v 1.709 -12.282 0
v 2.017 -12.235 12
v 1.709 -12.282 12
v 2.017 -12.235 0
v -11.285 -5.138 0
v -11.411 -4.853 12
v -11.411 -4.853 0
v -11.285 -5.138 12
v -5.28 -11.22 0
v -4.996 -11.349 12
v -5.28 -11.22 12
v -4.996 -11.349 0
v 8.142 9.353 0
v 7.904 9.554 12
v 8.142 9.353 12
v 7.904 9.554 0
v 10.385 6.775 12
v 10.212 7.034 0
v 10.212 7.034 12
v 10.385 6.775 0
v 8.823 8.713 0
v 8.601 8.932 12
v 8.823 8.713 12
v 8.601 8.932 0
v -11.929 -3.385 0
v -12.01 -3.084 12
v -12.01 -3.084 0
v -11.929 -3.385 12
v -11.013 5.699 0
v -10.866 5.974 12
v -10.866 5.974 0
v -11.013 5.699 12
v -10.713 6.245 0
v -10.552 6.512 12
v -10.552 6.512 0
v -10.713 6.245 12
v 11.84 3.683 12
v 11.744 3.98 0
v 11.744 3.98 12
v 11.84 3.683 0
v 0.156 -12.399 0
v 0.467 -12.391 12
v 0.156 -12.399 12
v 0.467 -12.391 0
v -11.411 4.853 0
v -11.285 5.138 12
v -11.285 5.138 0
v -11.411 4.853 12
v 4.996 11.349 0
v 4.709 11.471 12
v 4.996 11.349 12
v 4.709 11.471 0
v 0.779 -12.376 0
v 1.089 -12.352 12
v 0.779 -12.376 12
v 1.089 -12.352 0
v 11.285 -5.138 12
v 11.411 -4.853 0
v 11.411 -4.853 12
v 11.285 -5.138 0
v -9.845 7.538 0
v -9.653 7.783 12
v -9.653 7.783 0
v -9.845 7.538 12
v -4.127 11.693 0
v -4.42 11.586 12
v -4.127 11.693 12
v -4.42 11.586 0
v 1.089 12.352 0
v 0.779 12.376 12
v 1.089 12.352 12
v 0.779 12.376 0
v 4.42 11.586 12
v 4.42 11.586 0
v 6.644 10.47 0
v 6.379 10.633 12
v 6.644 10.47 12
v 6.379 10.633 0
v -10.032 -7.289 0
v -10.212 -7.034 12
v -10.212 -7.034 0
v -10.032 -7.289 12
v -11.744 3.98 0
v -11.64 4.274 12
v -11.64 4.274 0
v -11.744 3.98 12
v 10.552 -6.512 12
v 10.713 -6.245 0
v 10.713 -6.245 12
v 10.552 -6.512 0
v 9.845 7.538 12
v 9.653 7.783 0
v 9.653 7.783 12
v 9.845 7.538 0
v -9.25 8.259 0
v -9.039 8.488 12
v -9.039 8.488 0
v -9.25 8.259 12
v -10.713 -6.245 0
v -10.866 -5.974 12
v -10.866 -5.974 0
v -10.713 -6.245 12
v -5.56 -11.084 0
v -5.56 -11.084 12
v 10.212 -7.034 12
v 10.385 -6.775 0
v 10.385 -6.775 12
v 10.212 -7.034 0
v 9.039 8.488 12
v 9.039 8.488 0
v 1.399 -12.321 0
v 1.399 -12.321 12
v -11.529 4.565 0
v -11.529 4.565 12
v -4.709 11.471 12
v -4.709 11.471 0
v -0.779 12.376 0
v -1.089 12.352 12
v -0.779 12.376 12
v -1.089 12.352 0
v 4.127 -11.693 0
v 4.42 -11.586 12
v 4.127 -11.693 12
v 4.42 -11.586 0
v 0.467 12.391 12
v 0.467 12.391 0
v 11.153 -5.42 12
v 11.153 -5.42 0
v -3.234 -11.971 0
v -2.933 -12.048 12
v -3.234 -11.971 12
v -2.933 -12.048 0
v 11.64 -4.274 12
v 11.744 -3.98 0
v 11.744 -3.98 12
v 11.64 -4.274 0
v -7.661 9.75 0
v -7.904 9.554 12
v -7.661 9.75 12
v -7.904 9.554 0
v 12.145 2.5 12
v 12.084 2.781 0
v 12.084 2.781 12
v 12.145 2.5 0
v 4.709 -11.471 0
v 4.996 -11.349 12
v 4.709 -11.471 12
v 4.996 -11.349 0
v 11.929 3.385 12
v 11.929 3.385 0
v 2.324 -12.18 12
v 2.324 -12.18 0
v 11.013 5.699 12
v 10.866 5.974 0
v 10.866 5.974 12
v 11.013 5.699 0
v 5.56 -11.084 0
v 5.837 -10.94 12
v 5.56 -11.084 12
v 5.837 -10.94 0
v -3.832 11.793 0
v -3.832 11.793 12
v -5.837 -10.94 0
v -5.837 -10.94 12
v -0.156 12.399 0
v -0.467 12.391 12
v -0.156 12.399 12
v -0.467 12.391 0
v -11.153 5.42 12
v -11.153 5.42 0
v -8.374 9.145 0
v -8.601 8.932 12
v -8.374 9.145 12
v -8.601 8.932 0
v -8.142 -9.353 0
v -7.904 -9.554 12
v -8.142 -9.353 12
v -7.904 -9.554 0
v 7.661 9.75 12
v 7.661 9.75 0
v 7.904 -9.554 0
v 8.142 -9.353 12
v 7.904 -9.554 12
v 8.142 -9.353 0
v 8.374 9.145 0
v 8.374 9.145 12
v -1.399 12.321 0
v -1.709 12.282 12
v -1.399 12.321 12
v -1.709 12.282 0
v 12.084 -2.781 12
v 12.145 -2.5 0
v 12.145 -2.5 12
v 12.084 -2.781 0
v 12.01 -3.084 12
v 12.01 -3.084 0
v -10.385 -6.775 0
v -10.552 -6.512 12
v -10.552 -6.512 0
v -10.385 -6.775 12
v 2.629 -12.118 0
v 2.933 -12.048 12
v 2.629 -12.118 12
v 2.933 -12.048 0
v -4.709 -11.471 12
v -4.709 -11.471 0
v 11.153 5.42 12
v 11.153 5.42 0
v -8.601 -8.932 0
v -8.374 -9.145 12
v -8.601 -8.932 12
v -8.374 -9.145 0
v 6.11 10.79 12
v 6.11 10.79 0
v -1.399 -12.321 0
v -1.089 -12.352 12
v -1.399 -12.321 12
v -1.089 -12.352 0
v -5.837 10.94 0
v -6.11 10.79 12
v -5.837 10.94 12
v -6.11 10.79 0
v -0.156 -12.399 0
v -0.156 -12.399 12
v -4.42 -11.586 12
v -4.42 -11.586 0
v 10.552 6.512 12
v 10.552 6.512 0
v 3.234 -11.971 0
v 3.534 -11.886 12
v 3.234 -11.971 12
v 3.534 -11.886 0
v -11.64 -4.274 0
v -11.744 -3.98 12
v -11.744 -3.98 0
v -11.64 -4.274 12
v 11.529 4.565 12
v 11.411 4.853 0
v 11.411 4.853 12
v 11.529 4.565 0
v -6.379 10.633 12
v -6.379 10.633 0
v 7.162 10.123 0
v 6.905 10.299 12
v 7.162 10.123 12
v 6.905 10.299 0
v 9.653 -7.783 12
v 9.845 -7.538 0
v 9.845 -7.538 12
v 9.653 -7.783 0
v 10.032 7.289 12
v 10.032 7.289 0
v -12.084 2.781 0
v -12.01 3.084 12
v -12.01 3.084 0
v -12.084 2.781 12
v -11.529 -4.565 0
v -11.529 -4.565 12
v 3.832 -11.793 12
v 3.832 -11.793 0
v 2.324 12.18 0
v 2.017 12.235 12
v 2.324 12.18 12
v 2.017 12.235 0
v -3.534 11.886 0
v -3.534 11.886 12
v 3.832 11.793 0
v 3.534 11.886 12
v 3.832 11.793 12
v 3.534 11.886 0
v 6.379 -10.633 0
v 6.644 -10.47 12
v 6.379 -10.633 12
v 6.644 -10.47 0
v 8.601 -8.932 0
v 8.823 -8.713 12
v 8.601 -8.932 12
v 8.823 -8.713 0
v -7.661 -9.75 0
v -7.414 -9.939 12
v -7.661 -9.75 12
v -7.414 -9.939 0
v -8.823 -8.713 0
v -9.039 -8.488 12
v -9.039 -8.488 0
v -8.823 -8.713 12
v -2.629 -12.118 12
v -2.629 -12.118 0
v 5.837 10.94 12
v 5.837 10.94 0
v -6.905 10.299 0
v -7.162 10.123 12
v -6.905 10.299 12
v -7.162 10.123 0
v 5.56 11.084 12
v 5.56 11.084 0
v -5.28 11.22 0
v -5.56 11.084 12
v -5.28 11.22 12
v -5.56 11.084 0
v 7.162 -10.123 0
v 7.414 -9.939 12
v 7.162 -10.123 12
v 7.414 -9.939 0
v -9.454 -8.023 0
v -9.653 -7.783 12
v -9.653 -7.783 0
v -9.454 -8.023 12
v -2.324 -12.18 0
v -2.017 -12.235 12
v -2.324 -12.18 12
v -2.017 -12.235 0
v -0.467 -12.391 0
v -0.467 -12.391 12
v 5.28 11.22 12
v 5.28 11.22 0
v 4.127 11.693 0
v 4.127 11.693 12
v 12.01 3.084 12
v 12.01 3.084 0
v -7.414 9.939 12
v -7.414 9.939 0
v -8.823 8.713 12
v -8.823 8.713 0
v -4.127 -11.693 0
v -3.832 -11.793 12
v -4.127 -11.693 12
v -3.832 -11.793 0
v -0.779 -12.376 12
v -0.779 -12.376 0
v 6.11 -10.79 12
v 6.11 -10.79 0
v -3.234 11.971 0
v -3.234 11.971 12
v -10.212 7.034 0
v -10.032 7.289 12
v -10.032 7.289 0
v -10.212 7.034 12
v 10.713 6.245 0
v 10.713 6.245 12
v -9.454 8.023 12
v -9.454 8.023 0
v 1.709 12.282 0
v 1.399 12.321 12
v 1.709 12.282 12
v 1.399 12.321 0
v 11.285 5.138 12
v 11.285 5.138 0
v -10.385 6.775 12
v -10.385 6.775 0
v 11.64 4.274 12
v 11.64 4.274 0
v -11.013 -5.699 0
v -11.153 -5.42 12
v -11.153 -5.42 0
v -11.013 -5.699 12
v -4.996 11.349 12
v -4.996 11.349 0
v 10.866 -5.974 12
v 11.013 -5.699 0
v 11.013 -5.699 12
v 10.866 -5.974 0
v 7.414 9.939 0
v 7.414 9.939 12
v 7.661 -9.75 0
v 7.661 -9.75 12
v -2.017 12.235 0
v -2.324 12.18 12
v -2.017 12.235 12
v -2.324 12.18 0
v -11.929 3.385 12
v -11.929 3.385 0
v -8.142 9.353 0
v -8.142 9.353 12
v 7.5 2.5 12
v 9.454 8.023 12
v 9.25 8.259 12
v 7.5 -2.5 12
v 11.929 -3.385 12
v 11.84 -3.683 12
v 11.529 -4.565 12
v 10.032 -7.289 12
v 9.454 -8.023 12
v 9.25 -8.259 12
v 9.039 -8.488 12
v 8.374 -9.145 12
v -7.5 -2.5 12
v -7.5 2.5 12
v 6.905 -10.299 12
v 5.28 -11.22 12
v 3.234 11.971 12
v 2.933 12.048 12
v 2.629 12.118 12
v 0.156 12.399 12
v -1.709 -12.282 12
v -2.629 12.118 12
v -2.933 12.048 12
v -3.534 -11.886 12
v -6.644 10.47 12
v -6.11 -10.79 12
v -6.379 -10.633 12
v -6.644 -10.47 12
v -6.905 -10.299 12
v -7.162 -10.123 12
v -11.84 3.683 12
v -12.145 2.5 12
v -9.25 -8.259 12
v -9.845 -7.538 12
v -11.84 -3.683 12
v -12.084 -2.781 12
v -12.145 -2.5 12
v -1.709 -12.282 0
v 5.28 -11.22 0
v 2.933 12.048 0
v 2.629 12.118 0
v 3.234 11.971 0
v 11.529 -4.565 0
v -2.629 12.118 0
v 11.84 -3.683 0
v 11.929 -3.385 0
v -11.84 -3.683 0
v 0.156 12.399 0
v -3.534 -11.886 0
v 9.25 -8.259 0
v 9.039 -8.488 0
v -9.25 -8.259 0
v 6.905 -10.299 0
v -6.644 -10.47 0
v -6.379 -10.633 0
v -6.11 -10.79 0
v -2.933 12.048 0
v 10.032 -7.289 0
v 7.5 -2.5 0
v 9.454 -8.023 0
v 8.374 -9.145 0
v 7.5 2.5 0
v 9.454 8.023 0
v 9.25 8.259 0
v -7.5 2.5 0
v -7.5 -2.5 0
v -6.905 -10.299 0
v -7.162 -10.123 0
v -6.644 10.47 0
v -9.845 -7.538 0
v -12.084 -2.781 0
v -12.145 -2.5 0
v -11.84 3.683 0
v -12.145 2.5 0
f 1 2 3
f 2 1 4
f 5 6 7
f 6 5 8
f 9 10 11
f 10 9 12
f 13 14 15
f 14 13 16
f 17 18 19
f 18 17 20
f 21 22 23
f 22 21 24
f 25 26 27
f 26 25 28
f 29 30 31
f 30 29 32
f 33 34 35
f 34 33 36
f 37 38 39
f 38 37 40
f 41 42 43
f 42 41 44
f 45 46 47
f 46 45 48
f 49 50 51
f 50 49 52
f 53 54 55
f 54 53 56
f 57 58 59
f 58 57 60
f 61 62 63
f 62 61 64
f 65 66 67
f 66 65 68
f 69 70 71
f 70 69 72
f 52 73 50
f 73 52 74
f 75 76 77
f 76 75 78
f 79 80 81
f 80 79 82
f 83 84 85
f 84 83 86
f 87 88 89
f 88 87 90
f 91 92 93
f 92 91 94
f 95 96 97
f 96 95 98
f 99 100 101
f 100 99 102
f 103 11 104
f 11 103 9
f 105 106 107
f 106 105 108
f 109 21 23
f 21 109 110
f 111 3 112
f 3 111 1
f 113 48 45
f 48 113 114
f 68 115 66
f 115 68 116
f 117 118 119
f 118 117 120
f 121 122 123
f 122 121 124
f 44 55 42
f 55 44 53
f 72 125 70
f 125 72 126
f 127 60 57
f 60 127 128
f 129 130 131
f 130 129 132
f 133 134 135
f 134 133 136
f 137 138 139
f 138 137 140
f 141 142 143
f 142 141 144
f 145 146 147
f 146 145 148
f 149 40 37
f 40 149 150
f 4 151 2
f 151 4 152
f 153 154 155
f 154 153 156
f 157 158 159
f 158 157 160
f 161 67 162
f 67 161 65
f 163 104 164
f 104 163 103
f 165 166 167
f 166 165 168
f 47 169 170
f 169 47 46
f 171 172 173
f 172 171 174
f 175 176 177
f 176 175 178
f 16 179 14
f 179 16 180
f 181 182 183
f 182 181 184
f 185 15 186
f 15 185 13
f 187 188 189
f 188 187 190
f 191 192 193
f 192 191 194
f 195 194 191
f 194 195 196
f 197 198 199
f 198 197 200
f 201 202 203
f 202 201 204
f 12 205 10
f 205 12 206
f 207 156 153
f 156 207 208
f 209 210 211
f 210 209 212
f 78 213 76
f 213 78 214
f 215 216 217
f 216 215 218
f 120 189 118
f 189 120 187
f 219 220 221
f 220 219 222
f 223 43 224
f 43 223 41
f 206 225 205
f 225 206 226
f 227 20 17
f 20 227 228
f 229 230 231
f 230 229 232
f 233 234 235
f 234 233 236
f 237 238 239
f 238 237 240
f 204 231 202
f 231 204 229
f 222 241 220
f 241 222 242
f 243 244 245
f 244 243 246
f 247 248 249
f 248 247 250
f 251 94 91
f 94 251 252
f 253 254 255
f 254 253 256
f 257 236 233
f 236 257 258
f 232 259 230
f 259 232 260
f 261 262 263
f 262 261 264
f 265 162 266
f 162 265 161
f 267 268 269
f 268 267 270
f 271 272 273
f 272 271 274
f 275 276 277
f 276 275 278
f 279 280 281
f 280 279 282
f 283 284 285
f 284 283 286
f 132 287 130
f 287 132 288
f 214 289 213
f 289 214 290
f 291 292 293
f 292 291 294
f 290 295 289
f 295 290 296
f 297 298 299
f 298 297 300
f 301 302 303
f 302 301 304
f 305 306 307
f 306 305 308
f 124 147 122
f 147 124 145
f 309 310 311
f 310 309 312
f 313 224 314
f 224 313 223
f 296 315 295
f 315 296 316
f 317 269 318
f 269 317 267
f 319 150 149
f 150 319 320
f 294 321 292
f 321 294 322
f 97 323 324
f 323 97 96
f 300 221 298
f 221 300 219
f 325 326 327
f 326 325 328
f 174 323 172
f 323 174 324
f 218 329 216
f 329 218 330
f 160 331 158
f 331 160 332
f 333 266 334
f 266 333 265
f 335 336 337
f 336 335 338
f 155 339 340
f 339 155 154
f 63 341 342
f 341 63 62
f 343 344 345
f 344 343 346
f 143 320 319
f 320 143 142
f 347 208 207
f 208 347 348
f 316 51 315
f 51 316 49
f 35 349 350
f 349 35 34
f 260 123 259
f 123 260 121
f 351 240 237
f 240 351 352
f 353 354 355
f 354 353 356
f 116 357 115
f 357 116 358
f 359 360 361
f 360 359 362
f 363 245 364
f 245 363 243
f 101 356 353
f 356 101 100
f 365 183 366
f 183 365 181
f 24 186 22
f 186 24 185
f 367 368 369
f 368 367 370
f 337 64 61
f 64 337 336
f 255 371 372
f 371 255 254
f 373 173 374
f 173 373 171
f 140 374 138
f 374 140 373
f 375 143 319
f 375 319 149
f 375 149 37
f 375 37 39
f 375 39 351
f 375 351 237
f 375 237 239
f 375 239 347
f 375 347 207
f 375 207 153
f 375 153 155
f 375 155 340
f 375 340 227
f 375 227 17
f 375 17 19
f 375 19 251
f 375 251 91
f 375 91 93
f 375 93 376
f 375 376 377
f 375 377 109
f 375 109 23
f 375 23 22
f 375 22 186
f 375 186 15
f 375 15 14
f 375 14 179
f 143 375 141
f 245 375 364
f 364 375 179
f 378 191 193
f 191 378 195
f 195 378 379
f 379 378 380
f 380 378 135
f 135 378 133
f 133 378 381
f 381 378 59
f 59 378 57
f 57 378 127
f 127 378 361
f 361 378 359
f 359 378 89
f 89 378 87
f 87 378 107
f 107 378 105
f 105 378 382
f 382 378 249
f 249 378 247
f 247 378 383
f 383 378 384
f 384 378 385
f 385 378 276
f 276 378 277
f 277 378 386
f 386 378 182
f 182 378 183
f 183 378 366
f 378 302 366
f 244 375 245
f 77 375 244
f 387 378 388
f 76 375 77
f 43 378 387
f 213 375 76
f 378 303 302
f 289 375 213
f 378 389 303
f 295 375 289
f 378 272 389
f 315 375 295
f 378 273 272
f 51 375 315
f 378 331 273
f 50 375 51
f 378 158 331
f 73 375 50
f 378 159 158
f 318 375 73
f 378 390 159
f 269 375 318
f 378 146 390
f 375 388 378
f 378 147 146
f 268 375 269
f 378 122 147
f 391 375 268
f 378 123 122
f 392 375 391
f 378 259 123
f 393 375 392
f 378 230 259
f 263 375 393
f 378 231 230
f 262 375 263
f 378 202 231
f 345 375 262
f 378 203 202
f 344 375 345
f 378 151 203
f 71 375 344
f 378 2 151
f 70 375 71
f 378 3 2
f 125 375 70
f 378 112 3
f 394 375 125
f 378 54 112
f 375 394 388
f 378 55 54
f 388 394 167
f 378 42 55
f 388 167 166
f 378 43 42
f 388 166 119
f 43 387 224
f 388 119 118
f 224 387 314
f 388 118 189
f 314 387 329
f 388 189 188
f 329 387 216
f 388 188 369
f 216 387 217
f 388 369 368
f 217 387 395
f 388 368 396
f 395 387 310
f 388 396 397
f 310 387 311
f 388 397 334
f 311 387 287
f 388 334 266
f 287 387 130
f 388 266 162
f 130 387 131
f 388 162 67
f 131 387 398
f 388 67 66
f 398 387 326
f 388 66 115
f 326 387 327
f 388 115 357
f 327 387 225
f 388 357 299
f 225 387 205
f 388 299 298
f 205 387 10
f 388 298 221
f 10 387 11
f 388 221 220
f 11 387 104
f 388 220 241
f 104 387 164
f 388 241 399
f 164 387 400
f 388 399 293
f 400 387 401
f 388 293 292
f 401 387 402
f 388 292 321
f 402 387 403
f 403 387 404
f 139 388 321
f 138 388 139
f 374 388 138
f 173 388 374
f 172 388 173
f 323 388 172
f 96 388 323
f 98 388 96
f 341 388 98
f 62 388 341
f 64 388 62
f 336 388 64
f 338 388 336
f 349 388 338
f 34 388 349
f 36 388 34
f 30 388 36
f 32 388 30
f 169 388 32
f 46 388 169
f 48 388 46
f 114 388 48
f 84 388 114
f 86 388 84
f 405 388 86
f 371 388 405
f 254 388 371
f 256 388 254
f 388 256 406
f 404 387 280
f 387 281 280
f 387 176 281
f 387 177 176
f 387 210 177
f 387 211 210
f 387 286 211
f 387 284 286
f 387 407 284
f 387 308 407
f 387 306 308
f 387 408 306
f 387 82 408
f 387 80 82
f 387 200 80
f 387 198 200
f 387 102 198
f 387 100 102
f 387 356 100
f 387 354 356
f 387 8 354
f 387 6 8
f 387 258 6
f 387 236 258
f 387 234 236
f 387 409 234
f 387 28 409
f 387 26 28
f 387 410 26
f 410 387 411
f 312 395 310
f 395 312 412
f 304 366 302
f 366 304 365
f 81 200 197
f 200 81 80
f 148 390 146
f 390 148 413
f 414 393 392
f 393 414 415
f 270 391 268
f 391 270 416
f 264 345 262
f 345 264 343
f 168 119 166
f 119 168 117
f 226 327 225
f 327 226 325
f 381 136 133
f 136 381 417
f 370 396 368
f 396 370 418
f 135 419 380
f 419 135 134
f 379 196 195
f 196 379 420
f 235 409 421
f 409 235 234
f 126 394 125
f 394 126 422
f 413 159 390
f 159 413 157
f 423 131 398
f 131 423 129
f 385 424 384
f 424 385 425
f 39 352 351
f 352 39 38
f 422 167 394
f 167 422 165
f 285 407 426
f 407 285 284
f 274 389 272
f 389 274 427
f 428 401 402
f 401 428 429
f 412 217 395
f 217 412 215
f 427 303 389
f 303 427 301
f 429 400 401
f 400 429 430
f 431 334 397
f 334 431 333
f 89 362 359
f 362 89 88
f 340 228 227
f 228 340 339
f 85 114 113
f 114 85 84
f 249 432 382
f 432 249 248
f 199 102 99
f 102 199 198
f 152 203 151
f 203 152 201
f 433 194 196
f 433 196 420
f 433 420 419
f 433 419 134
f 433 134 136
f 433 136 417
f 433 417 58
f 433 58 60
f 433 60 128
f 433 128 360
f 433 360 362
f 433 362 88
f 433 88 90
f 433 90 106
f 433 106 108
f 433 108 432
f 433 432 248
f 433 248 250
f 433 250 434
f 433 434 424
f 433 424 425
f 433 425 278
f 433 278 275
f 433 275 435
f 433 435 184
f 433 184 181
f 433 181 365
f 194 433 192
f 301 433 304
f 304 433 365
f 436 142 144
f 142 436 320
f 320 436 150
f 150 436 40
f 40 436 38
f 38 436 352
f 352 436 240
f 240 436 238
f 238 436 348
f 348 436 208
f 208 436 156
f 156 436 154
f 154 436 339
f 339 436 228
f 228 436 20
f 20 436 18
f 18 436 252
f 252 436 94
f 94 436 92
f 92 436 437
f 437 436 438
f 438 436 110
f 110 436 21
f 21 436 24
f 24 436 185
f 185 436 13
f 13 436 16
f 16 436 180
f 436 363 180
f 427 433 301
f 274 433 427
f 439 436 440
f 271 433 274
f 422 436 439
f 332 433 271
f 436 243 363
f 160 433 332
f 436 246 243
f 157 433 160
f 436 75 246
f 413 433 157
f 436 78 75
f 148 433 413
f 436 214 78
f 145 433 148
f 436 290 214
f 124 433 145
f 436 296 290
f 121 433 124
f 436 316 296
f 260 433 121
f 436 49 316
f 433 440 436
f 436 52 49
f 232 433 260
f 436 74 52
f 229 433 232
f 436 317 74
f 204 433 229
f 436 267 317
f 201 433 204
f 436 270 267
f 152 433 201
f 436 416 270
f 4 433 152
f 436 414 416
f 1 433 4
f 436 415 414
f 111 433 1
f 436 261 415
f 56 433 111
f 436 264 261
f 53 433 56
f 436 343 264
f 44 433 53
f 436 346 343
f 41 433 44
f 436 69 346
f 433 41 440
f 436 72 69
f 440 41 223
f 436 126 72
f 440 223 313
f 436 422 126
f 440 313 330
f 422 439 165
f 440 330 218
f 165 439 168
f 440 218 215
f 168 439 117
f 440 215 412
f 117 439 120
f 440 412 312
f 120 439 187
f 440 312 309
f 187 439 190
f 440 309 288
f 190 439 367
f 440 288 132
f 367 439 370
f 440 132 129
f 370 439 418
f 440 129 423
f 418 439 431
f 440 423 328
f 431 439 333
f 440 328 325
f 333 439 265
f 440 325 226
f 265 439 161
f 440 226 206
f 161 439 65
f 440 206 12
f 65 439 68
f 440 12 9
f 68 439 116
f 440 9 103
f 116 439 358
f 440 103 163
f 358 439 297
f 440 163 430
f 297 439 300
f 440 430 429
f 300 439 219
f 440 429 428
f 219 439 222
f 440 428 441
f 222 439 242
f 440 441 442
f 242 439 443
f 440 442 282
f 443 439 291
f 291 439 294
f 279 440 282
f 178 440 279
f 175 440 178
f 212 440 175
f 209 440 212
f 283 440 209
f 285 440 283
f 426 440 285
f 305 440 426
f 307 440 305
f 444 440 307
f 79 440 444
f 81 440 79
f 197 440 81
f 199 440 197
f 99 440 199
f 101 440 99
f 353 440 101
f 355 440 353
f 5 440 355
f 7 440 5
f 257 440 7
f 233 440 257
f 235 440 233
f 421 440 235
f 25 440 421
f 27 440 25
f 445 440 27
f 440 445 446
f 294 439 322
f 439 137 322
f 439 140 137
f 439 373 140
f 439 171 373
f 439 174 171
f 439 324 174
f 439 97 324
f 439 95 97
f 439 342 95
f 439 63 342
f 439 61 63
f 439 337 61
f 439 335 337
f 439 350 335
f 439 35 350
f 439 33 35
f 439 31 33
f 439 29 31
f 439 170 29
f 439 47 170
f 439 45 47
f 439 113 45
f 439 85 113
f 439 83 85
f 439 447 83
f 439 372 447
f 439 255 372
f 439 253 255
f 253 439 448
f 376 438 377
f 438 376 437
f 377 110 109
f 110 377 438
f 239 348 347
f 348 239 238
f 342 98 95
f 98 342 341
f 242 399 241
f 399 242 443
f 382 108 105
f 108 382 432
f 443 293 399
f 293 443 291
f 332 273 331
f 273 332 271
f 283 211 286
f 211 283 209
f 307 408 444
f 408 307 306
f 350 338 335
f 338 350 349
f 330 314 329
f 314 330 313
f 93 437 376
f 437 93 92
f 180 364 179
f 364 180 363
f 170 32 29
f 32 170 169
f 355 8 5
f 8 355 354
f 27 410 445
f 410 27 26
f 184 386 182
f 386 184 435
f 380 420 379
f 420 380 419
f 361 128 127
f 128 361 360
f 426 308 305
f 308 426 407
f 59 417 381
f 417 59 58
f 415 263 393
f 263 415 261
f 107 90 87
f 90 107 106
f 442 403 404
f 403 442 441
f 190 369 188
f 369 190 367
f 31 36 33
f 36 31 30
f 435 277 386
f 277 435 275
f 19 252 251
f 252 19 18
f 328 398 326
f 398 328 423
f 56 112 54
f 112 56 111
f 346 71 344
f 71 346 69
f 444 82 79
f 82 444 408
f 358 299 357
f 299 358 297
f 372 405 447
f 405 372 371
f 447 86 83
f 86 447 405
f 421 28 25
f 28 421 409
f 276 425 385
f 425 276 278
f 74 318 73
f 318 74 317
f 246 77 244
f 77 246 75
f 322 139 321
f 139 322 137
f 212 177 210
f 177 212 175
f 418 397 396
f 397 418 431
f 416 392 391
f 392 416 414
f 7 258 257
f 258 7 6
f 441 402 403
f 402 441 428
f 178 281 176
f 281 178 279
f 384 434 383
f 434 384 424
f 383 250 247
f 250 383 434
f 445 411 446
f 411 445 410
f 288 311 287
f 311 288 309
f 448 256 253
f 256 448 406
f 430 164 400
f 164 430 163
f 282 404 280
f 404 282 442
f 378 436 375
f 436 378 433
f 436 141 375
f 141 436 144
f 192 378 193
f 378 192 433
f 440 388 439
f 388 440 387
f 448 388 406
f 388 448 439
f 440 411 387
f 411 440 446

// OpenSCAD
$fn = 250;

difference() {
  cylinder(12, d=25 - 0.2);

  translate([10, 0, 0])
  cube([5, 5, 41], center=true);

  translate([-10, 0, 0])
  cube([5, 5, 41], center=true);
}
